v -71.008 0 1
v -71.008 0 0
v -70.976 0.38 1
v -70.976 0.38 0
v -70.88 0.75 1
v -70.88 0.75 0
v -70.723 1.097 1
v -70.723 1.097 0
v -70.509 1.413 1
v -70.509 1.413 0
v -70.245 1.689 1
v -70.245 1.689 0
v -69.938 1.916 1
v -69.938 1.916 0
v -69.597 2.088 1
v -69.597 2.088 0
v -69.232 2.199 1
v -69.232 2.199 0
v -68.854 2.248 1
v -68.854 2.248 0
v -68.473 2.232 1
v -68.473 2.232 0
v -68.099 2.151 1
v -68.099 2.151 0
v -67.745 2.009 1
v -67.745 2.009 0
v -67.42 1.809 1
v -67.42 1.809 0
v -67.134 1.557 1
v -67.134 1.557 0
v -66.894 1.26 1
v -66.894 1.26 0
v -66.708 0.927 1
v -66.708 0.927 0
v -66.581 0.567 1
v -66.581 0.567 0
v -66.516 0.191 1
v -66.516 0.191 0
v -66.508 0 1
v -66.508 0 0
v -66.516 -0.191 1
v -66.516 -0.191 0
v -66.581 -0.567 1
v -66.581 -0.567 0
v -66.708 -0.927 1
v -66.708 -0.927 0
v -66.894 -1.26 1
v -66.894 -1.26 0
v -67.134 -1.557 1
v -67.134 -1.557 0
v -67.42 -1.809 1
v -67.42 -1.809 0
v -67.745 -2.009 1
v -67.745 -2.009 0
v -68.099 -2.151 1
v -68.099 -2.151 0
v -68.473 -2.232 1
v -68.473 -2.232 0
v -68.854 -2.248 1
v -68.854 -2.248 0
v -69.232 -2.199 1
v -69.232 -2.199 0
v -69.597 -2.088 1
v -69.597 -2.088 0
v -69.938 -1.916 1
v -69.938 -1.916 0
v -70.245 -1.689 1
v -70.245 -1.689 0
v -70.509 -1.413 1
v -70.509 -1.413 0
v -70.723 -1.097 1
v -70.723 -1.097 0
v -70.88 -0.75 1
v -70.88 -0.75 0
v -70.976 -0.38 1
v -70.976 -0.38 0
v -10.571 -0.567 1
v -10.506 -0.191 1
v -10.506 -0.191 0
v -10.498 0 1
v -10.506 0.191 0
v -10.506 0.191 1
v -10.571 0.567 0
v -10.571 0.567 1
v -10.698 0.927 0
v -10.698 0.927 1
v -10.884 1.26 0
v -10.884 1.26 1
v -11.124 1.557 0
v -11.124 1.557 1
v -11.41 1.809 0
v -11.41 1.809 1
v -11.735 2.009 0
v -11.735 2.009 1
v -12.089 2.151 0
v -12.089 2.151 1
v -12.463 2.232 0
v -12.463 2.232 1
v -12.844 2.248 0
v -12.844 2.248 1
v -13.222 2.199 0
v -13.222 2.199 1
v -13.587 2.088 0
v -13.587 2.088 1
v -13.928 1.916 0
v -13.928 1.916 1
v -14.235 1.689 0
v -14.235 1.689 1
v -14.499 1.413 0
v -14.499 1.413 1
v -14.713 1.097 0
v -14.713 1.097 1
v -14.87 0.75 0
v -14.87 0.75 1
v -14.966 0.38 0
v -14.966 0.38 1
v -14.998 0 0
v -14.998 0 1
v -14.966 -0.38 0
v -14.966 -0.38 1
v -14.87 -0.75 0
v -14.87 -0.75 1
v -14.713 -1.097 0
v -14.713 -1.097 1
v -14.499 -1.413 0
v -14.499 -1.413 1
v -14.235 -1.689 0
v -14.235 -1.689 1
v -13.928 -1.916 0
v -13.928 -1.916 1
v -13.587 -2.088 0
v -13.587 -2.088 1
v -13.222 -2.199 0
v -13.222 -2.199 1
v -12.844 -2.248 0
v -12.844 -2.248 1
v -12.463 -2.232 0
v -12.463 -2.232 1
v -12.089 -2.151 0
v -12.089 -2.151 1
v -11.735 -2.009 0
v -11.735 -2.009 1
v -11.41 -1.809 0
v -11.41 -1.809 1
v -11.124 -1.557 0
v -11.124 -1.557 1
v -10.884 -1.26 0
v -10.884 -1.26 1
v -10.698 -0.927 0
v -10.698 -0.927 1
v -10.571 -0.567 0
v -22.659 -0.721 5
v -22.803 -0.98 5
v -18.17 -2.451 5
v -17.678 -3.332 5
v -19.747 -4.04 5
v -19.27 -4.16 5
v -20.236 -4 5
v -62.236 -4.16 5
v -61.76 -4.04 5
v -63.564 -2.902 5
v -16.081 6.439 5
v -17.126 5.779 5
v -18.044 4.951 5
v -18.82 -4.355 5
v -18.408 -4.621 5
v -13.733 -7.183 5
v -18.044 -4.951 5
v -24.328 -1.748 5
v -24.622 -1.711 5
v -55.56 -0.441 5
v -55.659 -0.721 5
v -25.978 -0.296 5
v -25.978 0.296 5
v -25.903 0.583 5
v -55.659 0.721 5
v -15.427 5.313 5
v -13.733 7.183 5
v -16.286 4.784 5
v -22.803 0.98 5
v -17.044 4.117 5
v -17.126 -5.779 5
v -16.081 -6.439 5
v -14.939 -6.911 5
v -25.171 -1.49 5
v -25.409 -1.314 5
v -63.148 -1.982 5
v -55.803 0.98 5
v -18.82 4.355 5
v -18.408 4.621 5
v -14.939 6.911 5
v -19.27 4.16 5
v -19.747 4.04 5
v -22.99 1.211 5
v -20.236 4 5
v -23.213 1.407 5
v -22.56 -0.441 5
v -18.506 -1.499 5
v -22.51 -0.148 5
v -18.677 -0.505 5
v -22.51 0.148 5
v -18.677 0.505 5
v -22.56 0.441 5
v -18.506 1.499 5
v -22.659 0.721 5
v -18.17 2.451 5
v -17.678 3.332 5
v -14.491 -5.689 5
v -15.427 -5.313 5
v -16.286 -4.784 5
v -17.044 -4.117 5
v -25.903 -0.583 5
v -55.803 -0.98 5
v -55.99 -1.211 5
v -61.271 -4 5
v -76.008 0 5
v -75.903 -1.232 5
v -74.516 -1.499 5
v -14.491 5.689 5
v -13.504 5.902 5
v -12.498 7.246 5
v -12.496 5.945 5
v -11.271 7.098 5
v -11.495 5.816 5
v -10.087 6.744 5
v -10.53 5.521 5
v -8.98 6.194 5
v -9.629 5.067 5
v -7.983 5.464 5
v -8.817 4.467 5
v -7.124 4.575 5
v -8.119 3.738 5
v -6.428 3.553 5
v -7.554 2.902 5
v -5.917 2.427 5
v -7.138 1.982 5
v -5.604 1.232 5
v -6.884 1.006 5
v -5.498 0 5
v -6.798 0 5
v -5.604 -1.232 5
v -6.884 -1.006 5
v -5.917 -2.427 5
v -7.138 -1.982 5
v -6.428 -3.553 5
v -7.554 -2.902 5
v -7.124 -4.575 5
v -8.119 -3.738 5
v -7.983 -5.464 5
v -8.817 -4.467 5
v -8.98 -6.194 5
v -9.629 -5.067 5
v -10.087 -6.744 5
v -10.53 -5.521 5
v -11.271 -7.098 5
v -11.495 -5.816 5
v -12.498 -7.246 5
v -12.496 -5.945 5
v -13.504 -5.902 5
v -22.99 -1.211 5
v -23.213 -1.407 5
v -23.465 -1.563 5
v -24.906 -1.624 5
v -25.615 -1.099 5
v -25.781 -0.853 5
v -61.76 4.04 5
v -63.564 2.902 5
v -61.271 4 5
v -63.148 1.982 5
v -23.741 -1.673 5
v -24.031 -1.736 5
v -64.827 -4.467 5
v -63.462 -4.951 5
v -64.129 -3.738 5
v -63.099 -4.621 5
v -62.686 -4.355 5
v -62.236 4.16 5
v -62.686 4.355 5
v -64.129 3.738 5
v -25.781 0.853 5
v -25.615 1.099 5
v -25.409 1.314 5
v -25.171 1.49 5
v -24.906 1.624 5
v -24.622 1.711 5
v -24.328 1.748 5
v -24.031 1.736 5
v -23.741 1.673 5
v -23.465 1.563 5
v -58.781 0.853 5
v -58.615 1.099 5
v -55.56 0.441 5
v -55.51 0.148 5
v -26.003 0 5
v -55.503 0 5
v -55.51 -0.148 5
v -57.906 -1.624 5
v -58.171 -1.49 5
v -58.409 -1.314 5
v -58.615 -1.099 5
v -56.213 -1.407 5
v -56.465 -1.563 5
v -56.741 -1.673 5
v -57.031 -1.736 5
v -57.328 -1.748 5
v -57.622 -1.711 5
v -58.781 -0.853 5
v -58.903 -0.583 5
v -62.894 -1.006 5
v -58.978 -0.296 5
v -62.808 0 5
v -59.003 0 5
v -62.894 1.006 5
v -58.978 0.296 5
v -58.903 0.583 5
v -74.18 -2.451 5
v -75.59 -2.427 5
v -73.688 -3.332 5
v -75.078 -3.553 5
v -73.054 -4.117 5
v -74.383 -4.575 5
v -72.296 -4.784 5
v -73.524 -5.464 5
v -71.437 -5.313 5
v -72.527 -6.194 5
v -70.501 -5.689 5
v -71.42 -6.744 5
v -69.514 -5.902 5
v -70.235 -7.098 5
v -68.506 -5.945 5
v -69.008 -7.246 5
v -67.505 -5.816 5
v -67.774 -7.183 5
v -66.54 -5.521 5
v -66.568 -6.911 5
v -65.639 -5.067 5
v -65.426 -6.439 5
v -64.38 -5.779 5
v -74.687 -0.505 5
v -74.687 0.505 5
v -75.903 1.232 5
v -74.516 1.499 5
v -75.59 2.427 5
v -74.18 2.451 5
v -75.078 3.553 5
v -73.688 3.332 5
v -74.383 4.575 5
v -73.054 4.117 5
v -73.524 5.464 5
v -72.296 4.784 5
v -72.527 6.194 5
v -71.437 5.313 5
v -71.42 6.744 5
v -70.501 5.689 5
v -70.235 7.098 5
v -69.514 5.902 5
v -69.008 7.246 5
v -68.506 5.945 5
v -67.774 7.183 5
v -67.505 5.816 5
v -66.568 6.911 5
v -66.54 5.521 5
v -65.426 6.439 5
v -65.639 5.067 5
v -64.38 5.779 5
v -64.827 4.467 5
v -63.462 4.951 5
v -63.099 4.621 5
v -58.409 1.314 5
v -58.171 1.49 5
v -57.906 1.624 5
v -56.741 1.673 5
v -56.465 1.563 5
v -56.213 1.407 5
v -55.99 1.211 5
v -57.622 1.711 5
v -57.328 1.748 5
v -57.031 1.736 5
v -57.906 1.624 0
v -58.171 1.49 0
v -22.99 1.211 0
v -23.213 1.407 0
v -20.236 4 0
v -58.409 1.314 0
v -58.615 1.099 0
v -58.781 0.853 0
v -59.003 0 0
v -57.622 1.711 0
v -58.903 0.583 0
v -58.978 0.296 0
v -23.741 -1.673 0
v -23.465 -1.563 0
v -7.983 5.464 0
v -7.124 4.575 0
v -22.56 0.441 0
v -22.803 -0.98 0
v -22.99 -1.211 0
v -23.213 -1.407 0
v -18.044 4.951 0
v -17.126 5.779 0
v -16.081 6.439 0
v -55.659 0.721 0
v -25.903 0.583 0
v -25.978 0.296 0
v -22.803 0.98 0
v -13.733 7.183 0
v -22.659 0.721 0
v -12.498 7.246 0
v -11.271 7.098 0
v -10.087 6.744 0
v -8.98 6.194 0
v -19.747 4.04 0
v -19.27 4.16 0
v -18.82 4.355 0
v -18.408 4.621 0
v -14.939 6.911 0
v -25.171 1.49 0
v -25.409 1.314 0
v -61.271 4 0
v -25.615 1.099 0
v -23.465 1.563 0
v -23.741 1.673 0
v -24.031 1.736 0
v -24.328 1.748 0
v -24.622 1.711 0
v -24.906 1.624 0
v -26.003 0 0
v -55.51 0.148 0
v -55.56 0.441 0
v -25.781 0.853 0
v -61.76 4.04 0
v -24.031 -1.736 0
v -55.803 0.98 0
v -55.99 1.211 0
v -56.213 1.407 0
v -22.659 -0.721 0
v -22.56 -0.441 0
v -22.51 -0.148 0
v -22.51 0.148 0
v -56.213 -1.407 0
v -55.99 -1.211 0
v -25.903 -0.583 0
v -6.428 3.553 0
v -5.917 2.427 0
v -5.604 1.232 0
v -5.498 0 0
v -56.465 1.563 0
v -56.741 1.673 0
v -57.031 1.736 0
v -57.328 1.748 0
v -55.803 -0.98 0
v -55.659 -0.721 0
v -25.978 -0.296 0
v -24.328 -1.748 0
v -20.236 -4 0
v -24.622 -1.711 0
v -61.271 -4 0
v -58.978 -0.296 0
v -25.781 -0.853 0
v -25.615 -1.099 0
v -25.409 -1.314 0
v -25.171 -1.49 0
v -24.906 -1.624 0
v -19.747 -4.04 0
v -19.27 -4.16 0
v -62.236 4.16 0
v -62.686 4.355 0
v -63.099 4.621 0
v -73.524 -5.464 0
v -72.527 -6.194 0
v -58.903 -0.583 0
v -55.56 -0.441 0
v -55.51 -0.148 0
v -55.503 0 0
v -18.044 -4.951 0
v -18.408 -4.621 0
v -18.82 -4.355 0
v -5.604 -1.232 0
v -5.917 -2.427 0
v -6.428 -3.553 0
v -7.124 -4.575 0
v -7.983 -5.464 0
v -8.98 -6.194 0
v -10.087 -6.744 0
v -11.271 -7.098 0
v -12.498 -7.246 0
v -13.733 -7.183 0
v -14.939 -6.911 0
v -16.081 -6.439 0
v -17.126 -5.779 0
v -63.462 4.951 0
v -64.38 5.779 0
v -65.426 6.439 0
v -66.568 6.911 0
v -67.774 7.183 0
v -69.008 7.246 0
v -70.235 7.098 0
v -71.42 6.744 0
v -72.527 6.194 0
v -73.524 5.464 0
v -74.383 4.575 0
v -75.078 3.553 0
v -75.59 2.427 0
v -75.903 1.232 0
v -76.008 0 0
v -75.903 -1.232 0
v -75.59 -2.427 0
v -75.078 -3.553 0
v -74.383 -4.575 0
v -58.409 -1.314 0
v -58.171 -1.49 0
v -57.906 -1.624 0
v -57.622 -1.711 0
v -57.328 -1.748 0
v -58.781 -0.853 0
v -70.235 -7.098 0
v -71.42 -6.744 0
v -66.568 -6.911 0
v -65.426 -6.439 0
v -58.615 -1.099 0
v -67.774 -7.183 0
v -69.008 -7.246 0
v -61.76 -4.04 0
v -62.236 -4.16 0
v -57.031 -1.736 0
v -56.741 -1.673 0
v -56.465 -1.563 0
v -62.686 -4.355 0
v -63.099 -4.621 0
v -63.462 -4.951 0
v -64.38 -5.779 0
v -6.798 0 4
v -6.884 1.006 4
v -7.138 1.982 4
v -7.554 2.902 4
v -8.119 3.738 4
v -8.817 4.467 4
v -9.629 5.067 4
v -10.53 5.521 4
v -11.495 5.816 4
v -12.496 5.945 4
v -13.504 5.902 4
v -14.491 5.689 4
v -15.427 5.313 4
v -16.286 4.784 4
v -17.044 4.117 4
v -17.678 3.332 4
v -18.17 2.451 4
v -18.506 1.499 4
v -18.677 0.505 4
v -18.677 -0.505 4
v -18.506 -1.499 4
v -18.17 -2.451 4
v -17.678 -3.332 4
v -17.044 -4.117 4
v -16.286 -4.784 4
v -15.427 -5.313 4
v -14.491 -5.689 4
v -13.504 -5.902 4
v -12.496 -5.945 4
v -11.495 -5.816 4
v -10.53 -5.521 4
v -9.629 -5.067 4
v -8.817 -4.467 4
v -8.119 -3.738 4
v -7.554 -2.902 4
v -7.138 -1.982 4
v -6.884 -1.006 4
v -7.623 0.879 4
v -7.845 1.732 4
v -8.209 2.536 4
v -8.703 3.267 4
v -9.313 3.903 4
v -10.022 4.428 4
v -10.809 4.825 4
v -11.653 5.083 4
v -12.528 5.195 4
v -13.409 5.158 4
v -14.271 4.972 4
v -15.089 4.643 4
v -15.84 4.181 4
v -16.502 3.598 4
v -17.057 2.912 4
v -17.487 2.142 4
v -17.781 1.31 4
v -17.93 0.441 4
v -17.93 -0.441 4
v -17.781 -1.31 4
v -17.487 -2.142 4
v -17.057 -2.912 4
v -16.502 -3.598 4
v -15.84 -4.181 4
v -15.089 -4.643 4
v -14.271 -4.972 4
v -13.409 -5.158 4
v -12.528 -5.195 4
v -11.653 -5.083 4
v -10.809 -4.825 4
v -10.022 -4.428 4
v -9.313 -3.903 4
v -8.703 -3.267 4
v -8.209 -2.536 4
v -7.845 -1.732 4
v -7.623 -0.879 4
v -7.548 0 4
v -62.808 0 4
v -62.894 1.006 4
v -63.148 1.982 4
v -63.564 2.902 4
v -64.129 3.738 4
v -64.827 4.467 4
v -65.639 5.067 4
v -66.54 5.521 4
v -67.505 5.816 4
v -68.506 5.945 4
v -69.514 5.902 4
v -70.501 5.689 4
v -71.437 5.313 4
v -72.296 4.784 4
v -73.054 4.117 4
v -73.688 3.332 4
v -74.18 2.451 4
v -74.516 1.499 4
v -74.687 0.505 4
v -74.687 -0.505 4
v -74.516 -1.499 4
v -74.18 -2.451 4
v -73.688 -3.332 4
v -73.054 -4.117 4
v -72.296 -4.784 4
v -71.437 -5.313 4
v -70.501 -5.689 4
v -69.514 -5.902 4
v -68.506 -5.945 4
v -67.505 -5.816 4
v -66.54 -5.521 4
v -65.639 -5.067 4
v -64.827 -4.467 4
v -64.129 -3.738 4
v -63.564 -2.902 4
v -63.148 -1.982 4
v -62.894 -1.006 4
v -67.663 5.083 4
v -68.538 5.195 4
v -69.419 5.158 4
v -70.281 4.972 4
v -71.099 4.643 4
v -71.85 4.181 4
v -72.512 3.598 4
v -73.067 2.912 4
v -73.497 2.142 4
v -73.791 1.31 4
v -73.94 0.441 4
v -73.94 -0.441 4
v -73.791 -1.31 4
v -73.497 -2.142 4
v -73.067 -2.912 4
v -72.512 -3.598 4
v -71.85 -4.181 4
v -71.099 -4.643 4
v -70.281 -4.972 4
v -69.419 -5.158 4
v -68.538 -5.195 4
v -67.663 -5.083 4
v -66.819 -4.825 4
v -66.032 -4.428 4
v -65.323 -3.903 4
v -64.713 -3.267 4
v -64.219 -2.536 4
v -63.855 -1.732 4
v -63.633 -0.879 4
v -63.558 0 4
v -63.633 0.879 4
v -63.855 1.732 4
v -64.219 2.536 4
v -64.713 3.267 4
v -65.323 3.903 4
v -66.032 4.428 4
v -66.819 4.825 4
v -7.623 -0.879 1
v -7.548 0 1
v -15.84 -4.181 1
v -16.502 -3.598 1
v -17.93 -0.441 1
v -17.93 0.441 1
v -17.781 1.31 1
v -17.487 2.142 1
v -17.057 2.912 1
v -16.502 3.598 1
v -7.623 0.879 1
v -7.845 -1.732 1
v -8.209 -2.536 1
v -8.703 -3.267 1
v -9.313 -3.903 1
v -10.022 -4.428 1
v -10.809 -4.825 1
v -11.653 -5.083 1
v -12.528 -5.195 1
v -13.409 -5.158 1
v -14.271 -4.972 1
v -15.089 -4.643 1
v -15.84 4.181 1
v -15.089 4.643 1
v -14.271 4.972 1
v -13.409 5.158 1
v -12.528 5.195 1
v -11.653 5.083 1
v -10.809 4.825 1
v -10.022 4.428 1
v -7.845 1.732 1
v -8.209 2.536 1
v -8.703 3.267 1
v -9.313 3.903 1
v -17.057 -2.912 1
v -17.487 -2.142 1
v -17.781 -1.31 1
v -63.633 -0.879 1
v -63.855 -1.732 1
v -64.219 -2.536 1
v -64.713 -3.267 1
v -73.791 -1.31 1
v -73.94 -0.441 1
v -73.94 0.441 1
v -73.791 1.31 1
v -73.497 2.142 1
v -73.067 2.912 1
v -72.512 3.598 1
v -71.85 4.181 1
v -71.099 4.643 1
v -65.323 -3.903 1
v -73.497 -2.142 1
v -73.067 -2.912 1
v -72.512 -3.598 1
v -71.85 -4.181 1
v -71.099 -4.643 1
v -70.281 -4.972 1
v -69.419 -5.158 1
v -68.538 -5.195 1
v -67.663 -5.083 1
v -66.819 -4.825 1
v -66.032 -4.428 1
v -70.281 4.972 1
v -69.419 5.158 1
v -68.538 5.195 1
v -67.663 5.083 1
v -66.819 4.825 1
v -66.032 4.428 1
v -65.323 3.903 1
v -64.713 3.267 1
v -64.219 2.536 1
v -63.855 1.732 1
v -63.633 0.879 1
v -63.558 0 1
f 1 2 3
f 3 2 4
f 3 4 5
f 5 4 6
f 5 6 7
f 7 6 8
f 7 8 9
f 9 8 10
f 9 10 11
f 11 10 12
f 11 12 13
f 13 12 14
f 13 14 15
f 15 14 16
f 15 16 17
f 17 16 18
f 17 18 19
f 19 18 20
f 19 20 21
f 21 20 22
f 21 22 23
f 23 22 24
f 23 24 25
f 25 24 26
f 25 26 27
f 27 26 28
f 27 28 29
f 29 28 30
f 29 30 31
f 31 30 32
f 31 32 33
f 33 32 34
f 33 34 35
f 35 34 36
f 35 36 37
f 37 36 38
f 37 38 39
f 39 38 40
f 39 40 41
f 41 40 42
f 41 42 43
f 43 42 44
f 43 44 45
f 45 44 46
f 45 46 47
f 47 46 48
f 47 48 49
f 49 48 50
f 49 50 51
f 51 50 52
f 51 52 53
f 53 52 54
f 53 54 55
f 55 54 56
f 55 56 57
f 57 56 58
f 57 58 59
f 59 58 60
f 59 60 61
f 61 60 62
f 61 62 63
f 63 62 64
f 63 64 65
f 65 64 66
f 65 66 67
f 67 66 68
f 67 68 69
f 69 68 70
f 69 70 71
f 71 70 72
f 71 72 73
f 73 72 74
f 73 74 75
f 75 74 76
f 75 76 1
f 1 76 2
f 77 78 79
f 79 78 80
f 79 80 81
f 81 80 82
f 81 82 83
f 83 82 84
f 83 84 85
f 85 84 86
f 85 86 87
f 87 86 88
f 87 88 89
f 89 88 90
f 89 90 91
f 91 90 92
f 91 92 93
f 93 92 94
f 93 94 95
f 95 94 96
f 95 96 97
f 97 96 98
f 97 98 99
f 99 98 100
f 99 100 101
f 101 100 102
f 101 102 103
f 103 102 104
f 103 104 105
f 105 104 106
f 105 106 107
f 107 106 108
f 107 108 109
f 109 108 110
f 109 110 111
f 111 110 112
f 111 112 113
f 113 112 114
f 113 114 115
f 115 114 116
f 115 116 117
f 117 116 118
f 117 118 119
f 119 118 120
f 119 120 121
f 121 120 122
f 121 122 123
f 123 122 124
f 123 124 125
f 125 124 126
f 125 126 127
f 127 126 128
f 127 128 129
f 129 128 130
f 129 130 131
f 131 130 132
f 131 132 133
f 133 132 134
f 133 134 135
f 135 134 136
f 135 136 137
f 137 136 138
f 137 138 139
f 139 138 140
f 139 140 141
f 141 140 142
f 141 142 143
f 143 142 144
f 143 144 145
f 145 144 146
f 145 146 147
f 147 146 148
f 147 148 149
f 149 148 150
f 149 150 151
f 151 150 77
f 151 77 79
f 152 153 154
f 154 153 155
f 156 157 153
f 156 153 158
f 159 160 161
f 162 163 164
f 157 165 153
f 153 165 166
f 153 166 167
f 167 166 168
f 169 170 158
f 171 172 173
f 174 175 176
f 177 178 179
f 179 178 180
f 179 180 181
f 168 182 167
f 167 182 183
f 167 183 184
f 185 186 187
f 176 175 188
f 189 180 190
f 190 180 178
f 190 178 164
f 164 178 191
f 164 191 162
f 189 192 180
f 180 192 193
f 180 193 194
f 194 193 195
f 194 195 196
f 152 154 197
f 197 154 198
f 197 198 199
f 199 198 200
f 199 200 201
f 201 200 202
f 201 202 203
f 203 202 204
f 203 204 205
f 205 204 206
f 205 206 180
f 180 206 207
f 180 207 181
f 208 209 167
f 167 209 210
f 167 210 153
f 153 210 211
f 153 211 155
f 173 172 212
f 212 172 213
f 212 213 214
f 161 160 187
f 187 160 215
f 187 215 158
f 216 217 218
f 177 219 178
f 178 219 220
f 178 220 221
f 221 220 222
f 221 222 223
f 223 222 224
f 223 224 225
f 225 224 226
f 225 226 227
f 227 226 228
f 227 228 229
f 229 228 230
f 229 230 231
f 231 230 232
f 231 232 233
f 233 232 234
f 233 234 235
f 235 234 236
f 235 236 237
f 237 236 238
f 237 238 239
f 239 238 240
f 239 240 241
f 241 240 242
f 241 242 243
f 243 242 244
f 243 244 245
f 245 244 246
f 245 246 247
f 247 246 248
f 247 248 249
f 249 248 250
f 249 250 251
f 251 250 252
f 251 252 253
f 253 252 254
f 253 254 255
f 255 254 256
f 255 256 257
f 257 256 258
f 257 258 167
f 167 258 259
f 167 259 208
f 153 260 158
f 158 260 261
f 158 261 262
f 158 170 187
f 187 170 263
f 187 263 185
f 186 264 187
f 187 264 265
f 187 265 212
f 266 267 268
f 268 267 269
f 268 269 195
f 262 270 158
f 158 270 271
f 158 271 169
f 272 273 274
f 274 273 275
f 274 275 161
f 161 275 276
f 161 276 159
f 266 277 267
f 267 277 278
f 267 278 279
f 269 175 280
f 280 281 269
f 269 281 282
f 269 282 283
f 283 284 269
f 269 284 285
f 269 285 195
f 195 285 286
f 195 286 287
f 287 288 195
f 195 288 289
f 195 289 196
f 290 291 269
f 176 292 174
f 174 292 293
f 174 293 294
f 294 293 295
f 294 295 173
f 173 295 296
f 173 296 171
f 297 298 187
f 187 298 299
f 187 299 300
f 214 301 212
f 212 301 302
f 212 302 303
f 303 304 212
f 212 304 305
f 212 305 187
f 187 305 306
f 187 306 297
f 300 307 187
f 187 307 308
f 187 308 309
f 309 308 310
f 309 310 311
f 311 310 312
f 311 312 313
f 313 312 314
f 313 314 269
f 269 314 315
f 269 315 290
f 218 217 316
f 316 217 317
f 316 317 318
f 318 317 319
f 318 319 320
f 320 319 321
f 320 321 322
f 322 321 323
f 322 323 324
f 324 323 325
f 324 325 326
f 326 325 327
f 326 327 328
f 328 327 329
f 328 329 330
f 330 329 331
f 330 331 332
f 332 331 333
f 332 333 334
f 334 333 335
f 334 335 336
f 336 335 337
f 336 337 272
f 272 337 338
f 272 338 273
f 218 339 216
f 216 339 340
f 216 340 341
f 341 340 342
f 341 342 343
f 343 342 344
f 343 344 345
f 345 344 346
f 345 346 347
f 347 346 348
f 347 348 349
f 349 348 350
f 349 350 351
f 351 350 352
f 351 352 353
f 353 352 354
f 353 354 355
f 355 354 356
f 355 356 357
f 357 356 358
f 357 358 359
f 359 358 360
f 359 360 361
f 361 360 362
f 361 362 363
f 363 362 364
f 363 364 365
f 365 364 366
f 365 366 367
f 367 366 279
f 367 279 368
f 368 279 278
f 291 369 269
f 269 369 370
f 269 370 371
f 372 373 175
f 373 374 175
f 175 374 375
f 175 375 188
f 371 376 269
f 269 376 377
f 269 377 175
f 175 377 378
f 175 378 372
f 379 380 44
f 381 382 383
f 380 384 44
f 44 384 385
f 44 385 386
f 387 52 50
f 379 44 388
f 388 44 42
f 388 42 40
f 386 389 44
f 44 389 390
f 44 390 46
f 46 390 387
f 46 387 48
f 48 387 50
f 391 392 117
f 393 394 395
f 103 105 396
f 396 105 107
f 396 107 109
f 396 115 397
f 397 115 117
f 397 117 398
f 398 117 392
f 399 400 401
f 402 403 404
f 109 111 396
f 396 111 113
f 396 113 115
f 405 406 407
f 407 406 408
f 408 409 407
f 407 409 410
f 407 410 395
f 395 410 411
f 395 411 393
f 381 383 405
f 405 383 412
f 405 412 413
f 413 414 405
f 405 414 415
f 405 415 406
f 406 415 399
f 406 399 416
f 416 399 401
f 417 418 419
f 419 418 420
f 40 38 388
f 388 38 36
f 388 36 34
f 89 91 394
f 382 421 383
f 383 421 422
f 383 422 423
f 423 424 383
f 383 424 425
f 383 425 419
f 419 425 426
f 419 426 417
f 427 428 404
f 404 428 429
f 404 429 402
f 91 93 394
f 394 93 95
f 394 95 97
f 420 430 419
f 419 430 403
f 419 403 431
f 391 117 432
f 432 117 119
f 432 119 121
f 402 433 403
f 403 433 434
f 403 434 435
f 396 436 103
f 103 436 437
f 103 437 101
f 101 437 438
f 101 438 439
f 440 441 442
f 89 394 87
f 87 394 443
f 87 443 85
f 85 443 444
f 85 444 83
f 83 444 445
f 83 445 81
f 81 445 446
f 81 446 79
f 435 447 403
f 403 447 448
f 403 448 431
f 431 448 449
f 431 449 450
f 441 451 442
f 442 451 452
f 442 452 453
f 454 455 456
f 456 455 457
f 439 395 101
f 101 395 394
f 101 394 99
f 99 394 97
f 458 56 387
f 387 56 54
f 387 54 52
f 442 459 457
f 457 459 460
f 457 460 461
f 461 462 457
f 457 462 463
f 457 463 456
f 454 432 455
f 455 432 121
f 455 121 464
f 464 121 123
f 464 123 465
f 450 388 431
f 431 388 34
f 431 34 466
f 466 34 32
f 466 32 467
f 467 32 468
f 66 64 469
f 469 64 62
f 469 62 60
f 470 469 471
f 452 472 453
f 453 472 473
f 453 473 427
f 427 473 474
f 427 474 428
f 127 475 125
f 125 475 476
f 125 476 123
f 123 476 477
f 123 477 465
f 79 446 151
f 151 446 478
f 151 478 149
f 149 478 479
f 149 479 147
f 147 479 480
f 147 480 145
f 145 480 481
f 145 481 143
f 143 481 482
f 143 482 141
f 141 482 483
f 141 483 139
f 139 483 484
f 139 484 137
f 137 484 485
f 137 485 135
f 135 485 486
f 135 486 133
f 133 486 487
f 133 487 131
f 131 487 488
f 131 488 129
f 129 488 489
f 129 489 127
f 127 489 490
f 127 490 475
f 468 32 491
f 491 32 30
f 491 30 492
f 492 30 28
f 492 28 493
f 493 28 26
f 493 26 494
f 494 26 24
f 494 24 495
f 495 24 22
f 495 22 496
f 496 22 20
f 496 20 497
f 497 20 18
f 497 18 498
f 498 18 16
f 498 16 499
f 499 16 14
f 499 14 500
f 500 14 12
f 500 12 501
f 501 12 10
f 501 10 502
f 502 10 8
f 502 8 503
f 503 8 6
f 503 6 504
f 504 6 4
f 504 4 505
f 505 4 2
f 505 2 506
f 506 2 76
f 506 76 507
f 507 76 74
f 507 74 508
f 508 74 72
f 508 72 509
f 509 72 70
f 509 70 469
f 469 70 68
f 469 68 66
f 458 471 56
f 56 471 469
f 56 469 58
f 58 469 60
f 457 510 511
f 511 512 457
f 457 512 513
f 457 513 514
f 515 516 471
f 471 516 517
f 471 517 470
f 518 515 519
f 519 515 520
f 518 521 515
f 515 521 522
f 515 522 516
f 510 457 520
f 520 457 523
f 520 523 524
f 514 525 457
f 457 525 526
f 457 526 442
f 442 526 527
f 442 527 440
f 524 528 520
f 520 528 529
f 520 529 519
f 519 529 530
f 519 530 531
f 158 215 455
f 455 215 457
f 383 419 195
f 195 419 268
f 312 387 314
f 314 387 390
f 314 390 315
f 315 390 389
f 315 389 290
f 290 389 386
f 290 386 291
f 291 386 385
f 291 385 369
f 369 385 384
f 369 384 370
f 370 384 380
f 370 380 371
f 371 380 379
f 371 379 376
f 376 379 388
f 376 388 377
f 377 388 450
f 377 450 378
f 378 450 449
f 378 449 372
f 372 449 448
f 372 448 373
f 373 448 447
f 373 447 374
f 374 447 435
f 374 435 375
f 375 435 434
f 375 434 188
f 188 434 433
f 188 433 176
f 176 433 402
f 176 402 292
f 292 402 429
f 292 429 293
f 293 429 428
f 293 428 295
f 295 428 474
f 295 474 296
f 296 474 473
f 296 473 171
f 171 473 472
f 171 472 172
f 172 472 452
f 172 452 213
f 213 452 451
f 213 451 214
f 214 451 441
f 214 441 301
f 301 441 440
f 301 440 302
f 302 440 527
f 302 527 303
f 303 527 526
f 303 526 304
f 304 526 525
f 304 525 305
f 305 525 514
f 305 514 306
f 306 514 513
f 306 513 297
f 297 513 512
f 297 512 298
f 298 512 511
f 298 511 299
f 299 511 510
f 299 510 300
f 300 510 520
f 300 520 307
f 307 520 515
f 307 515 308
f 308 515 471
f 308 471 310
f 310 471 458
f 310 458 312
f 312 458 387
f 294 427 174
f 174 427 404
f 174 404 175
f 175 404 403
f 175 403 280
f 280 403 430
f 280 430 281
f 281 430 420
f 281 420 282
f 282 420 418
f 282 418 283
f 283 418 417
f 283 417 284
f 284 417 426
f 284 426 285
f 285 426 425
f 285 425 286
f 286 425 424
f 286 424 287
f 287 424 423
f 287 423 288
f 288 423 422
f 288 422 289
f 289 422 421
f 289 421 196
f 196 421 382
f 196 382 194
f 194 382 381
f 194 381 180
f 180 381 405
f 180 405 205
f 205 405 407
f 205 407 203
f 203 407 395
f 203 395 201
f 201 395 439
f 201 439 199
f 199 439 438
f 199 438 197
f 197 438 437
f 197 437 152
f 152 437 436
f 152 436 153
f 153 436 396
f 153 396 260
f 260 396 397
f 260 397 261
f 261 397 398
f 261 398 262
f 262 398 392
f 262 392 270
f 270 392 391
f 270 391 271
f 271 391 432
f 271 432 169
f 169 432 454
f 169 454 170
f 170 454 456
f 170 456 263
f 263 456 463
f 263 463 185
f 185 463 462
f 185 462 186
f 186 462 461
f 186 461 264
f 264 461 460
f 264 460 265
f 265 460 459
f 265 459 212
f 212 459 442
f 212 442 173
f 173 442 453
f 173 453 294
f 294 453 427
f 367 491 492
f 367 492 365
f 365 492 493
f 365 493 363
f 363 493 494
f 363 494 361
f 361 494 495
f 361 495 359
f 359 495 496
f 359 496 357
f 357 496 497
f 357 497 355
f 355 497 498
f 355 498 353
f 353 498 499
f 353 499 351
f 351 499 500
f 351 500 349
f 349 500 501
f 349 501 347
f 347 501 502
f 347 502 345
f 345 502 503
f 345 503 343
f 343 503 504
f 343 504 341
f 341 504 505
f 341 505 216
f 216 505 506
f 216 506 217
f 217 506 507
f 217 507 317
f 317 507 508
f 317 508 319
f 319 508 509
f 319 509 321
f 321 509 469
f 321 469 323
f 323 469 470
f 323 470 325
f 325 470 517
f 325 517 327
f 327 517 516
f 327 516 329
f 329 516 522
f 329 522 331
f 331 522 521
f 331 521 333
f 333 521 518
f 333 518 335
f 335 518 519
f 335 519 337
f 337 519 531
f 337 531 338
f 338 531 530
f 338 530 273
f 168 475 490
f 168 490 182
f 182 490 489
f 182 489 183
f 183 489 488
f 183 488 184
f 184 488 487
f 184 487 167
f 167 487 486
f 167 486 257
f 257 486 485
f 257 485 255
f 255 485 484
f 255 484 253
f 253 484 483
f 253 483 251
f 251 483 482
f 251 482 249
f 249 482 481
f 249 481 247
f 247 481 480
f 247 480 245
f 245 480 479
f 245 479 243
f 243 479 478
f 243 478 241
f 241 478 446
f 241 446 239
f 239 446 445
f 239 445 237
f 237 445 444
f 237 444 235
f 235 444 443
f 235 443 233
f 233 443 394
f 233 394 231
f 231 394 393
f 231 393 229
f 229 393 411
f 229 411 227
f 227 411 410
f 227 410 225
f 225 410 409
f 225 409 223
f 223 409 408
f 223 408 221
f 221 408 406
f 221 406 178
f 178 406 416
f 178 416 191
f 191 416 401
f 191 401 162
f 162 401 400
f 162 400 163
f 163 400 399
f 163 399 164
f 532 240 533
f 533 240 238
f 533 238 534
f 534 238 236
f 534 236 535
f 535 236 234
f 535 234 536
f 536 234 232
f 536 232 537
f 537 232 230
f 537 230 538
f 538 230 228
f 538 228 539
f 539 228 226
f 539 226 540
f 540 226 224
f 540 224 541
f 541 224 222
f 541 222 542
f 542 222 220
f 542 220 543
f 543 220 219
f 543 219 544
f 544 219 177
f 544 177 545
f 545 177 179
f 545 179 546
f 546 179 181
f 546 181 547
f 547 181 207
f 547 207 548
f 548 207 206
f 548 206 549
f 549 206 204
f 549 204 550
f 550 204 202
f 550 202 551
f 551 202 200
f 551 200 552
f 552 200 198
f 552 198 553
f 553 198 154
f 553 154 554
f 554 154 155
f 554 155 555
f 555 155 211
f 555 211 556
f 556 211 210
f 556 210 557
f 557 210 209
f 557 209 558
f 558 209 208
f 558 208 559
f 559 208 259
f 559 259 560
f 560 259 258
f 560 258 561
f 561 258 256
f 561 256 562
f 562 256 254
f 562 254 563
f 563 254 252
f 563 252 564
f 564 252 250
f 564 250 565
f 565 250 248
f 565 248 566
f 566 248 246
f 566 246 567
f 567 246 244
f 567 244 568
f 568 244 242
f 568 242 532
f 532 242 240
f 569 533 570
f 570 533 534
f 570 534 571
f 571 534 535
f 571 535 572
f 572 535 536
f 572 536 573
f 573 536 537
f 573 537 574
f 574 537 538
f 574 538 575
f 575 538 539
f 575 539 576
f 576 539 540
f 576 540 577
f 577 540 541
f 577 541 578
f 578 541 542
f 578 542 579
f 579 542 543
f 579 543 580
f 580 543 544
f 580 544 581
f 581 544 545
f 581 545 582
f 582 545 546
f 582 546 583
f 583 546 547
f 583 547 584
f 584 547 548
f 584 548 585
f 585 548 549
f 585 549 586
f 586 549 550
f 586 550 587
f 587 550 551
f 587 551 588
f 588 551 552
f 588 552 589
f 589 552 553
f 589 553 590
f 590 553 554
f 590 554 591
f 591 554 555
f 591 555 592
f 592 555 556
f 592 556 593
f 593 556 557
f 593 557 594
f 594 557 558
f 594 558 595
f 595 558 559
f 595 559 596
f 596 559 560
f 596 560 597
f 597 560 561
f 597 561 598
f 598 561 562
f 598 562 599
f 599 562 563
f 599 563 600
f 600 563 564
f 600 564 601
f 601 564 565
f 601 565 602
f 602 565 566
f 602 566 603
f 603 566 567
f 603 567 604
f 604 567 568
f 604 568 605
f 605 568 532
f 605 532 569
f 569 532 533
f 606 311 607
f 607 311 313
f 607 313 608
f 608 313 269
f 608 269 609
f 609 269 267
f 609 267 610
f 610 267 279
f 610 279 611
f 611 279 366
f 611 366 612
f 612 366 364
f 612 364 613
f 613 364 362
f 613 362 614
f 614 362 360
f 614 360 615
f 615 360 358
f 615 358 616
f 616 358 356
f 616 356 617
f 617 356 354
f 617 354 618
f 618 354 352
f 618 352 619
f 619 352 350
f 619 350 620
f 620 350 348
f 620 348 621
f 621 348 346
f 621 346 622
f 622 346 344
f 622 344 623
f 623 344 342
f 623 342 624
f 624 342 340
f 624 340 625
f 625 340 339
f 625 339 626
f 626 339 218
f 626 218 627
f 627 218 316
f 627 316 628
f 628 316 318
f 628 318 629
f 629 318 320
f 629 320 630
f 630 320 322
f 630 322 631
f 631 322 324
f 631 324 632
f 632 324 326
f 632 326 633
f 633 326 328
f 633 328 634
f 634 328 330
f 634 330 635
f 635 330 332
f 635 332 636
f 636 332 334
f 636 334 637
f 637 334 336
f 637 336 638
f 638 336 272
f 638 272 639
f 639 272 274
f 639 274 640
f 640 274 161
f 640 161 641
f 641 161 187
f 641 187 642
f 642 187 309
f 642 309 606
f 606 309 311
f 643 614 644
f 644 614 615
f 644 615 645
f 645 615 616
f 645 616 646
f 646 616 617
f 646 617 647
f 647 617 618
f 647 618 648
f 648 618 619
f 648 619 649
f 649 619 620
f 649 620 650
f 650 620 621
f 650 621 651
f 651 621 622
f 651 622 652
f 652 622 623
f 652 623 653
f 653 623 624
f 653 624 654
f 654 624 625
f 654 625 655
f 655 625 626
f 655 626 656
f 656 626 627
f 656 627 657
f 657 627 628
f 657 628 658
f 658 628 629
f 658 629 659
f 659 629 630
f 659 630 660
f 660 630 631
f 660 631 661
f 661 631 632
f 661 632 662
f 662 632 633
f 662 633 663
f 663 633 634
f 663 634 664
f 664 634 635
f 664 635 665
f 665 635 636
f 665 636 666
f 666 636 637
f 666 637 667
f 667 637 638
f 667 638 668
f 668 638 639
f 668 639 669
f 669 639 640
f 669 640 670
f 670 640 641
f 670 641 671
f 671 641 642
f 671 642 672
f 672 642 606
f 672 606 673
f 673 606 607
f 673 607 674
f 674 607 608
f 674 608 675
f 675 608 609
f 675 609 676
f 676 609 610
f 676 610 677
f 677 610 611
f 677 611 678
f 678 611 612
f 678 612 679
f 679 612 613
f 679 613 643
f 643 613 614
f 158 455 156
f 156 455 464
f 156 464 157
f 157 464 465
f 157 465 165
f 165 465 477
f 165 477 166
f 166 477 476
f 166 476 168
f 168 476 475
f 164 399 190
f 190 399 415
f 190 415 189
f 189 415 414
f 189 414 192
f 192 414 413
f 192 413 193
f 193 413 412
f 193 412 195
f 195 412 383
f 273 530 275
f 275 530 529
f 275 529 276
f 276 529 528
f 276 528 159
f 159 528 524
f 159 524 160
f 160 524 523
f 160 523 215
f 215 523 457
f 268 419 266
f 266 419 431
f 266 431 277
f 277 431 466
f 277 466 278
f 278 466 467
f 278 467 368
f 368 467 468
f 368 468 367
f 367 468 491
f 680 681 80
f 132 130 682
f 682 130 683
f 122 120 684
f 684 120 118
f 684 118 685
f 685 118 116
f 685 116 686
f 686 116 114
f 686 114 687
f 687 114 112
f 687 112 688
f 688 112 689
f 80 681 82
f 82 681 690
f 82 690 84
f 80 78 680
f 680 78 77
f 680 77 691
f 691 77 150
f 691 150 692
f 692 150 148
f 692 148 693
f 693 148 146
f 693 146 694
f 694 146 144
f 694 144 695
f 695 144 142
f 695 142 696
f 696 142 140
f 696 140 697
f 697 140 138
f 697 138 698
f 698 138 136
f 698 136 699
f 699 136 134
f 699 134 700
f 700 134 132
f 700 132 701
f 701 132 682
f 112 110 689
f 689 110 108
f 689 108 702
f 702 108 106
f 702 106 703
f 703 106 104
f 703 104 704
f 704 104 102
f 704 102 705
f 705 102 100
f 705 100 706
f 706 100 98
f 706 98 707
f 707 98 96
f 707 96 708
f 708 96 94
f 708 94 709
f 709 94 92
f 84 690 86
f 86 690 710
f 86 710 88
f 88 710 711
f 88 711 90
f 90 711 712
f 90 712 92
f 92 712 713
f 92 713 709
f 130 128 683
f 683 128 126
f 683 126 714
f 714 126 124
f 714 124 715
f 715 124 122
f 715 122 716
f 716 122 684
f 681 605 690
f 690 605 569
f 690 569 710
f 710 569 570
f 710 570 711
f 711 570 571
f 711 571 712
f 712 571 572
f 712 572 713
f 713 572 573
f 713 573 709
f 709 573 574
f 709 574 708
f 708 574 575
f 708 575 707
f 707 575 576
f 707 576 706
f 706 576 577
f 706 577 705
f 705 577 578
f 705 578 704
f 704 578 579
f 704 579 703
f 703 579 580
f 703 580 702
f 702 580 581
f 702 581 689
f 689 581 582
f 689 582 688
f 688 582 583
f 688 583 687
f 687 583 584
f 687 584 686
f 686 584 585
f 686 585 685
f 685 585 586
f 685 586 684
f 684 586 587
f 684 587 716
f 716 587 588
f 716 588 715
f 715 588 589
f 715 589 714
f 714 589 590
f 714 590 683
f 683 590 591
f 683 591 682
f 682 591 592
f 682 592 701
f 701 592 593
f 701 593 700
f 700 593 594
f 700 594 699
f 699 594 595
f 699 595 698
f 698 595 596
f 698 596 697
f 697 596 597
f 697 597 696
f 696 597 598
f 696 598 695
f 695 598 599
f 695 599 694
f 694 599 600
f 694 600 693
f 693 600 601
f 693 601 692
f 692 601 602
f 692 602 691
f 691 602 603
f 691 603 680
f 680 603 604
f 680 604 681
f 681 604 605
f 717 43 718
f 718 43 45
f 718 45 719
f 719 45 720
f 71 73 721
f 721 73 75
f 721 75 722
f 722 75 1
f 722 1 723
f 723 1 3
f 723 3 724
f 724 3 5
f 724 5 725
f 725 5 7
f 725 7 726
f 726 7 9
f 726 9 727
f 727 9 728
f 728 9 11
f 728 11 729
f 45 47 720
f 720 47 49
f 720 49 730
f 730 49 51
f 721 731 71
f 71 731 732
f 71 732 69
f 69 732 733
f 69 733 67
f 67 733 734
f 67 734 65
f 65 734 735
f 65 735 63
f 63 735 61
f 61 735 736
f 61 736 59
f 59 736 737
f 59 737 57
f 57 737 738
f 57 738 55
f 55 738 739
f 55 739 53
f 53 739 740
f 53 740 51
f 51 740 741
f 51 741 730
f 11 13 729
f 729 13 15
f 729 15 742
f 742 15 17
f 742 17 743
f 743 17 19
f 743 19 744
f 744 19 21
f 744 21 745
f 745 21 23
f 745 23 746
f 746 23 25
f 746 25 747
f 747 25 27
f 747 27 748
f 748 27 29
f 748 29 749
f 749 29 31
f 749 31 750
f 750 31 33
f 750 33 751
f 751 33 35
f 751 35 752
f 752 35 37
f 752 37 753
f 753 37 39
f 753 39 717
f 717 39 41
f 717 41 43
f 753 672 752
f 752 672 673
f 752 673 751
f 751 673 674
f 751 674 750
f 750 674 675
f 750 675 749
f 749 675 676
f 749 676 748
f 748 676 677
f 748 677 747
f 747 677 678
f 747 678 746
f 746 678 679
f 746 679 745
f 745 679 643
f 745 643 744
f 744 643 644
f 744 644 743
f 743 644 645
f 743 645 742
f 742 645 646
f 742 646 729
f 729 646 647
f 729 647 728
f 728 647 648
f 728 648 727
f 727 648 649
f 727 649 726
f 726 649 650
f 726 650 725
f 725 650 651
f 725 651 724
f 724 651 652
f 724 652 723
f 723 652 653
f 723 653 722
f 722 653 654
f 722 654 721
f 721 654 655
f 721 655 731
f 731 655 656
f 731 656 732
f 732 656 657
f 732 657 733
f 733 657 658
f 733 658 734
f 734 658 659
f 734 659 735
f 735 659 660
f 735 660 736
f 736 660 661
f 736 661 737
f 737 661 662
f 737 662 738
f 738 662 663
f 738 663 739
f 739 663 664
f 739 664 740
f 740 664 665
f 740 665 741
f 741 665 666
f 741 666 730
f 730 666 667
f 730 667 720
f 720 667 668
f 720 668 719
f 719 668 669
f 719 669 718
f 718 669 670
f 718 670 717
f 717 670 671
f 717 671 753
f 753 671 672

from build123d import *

# Parameters (mm, degrees)
SKETCH1_R           = 1.75
BOSS_EXTRUDE1_DEPTH = 5
SKETCH2_R           = 7.25
BOSS_EXTRUDE2_DEPTH = 5
SKETCH5_R           = 5.95
CUT_EXTRUDE2_DEPTH  = 1
SKETCH6_R           = 2.25
CUT_EXTRUDE3_DEPTH  = 4
FILLET1_R           = 3
SKETCH7_R           = 5.2
CUT_EXTRUDE4_DEPTH  = 3


with BuildPart() as part:
    # Sketch1 → Boss-Extrude1 (new body)
    with BuildSketch(Plane.XY):
        with BuildLine():
            Line((-68.758315939, 4), (-12.748315939, 4))
            ThreePointArc((-12.748315939, 4), (-8.748315939, 0), (-12.748315939, -4))
            Line((-12.748315939, -4), (-68.758315939, -4))
            ThreePointArc((-68.758315939, -4), (-72.758315939, 0), (-68.758315939, 4))
        make_face()
        with Locations((-57.253315939, 0)):
            Circle(SKETCH1_R, mode=Mode.SUBTRACT)
        with Locations(Location((-24.253315939, 0, 0), (0, 0, 180))):
            Circle(SKETCH1_R, mode=Mode.SUBTRACT)
    extrude(amount=BOSS_EXTRUDE1_DEPTH)

    # Sketch2 → Boss-Extrude2 (add)
    with BuildSketch(Plane(origin=(0, 0, 0), x_dir=(-1, 0, 0), z_dir=(0, 0, -1))):
        with Locations((68.758315939, 0)):
            Circle(SKETCH2_R)
        with Locations((12.748315939, 0)):
            Circle(SKETCH2_R)
    extrude(amount=-BOSS_EXTRUDE2_DEPTH)

    # Sketch5 → Cut-Extrude2 (cut)
    with BuildSketch(Plane.XY.offset(5)):
        with Locations((-68.758315939, 0)):
            Circle(SKETCH5_R)
        with Locations((-12.748315939, 0)):
            Circle(SKETCH5_R)
    extrude(amount=-CUT_EXTRUDE2_DEPTH, mode=Mode.SUBTRACT)

    # Sketch6 → Cut-Extrude3 (cut)
    with BuildSketch(Plane(origin=(0, 0, 0), x_dir=(-1, 0, 0), z_dir=(0, 0, -1))):
        with Locations((12.748315939, 0)):
            Circle(SKETCH6_R)
        with Locations(Location((68.758315939, 0, 0), (0, 0, 180))):
            Circle(SKETCH6_R)
    extrude(amount=-CUT_EXTRUDE3_DEPTH, mode=Mode.SUBTRACT)

    # Fillet1
    fillet1_edges = [part.edges().sort_by_distance(p)[0] for p in [
        (-62.711622628, 4, 2.5),
        (-62.711622628, -4, 2.5),
        (-18.79500925, 4, 2.5),
        (-18.79500925, -4, 2.5),
    ]]
    fillet(fillet1_edges, radius=FILLET1_R)

    # Sketch7 → Cut-Extrude4 (cut)
    with BuildSketch(Plane.XY.offset(4)):
        with Locations((-68.758315939, 0)):
            Circle(SKETCH7_R)
        with Locations((-12.748315939, 0)):
            Circle(SKETCH7_R)
    extrude(amount=-CUT_EXTRUDE4_DEPTH, mode=Mode.SUBTRACT)


solid = part.part
